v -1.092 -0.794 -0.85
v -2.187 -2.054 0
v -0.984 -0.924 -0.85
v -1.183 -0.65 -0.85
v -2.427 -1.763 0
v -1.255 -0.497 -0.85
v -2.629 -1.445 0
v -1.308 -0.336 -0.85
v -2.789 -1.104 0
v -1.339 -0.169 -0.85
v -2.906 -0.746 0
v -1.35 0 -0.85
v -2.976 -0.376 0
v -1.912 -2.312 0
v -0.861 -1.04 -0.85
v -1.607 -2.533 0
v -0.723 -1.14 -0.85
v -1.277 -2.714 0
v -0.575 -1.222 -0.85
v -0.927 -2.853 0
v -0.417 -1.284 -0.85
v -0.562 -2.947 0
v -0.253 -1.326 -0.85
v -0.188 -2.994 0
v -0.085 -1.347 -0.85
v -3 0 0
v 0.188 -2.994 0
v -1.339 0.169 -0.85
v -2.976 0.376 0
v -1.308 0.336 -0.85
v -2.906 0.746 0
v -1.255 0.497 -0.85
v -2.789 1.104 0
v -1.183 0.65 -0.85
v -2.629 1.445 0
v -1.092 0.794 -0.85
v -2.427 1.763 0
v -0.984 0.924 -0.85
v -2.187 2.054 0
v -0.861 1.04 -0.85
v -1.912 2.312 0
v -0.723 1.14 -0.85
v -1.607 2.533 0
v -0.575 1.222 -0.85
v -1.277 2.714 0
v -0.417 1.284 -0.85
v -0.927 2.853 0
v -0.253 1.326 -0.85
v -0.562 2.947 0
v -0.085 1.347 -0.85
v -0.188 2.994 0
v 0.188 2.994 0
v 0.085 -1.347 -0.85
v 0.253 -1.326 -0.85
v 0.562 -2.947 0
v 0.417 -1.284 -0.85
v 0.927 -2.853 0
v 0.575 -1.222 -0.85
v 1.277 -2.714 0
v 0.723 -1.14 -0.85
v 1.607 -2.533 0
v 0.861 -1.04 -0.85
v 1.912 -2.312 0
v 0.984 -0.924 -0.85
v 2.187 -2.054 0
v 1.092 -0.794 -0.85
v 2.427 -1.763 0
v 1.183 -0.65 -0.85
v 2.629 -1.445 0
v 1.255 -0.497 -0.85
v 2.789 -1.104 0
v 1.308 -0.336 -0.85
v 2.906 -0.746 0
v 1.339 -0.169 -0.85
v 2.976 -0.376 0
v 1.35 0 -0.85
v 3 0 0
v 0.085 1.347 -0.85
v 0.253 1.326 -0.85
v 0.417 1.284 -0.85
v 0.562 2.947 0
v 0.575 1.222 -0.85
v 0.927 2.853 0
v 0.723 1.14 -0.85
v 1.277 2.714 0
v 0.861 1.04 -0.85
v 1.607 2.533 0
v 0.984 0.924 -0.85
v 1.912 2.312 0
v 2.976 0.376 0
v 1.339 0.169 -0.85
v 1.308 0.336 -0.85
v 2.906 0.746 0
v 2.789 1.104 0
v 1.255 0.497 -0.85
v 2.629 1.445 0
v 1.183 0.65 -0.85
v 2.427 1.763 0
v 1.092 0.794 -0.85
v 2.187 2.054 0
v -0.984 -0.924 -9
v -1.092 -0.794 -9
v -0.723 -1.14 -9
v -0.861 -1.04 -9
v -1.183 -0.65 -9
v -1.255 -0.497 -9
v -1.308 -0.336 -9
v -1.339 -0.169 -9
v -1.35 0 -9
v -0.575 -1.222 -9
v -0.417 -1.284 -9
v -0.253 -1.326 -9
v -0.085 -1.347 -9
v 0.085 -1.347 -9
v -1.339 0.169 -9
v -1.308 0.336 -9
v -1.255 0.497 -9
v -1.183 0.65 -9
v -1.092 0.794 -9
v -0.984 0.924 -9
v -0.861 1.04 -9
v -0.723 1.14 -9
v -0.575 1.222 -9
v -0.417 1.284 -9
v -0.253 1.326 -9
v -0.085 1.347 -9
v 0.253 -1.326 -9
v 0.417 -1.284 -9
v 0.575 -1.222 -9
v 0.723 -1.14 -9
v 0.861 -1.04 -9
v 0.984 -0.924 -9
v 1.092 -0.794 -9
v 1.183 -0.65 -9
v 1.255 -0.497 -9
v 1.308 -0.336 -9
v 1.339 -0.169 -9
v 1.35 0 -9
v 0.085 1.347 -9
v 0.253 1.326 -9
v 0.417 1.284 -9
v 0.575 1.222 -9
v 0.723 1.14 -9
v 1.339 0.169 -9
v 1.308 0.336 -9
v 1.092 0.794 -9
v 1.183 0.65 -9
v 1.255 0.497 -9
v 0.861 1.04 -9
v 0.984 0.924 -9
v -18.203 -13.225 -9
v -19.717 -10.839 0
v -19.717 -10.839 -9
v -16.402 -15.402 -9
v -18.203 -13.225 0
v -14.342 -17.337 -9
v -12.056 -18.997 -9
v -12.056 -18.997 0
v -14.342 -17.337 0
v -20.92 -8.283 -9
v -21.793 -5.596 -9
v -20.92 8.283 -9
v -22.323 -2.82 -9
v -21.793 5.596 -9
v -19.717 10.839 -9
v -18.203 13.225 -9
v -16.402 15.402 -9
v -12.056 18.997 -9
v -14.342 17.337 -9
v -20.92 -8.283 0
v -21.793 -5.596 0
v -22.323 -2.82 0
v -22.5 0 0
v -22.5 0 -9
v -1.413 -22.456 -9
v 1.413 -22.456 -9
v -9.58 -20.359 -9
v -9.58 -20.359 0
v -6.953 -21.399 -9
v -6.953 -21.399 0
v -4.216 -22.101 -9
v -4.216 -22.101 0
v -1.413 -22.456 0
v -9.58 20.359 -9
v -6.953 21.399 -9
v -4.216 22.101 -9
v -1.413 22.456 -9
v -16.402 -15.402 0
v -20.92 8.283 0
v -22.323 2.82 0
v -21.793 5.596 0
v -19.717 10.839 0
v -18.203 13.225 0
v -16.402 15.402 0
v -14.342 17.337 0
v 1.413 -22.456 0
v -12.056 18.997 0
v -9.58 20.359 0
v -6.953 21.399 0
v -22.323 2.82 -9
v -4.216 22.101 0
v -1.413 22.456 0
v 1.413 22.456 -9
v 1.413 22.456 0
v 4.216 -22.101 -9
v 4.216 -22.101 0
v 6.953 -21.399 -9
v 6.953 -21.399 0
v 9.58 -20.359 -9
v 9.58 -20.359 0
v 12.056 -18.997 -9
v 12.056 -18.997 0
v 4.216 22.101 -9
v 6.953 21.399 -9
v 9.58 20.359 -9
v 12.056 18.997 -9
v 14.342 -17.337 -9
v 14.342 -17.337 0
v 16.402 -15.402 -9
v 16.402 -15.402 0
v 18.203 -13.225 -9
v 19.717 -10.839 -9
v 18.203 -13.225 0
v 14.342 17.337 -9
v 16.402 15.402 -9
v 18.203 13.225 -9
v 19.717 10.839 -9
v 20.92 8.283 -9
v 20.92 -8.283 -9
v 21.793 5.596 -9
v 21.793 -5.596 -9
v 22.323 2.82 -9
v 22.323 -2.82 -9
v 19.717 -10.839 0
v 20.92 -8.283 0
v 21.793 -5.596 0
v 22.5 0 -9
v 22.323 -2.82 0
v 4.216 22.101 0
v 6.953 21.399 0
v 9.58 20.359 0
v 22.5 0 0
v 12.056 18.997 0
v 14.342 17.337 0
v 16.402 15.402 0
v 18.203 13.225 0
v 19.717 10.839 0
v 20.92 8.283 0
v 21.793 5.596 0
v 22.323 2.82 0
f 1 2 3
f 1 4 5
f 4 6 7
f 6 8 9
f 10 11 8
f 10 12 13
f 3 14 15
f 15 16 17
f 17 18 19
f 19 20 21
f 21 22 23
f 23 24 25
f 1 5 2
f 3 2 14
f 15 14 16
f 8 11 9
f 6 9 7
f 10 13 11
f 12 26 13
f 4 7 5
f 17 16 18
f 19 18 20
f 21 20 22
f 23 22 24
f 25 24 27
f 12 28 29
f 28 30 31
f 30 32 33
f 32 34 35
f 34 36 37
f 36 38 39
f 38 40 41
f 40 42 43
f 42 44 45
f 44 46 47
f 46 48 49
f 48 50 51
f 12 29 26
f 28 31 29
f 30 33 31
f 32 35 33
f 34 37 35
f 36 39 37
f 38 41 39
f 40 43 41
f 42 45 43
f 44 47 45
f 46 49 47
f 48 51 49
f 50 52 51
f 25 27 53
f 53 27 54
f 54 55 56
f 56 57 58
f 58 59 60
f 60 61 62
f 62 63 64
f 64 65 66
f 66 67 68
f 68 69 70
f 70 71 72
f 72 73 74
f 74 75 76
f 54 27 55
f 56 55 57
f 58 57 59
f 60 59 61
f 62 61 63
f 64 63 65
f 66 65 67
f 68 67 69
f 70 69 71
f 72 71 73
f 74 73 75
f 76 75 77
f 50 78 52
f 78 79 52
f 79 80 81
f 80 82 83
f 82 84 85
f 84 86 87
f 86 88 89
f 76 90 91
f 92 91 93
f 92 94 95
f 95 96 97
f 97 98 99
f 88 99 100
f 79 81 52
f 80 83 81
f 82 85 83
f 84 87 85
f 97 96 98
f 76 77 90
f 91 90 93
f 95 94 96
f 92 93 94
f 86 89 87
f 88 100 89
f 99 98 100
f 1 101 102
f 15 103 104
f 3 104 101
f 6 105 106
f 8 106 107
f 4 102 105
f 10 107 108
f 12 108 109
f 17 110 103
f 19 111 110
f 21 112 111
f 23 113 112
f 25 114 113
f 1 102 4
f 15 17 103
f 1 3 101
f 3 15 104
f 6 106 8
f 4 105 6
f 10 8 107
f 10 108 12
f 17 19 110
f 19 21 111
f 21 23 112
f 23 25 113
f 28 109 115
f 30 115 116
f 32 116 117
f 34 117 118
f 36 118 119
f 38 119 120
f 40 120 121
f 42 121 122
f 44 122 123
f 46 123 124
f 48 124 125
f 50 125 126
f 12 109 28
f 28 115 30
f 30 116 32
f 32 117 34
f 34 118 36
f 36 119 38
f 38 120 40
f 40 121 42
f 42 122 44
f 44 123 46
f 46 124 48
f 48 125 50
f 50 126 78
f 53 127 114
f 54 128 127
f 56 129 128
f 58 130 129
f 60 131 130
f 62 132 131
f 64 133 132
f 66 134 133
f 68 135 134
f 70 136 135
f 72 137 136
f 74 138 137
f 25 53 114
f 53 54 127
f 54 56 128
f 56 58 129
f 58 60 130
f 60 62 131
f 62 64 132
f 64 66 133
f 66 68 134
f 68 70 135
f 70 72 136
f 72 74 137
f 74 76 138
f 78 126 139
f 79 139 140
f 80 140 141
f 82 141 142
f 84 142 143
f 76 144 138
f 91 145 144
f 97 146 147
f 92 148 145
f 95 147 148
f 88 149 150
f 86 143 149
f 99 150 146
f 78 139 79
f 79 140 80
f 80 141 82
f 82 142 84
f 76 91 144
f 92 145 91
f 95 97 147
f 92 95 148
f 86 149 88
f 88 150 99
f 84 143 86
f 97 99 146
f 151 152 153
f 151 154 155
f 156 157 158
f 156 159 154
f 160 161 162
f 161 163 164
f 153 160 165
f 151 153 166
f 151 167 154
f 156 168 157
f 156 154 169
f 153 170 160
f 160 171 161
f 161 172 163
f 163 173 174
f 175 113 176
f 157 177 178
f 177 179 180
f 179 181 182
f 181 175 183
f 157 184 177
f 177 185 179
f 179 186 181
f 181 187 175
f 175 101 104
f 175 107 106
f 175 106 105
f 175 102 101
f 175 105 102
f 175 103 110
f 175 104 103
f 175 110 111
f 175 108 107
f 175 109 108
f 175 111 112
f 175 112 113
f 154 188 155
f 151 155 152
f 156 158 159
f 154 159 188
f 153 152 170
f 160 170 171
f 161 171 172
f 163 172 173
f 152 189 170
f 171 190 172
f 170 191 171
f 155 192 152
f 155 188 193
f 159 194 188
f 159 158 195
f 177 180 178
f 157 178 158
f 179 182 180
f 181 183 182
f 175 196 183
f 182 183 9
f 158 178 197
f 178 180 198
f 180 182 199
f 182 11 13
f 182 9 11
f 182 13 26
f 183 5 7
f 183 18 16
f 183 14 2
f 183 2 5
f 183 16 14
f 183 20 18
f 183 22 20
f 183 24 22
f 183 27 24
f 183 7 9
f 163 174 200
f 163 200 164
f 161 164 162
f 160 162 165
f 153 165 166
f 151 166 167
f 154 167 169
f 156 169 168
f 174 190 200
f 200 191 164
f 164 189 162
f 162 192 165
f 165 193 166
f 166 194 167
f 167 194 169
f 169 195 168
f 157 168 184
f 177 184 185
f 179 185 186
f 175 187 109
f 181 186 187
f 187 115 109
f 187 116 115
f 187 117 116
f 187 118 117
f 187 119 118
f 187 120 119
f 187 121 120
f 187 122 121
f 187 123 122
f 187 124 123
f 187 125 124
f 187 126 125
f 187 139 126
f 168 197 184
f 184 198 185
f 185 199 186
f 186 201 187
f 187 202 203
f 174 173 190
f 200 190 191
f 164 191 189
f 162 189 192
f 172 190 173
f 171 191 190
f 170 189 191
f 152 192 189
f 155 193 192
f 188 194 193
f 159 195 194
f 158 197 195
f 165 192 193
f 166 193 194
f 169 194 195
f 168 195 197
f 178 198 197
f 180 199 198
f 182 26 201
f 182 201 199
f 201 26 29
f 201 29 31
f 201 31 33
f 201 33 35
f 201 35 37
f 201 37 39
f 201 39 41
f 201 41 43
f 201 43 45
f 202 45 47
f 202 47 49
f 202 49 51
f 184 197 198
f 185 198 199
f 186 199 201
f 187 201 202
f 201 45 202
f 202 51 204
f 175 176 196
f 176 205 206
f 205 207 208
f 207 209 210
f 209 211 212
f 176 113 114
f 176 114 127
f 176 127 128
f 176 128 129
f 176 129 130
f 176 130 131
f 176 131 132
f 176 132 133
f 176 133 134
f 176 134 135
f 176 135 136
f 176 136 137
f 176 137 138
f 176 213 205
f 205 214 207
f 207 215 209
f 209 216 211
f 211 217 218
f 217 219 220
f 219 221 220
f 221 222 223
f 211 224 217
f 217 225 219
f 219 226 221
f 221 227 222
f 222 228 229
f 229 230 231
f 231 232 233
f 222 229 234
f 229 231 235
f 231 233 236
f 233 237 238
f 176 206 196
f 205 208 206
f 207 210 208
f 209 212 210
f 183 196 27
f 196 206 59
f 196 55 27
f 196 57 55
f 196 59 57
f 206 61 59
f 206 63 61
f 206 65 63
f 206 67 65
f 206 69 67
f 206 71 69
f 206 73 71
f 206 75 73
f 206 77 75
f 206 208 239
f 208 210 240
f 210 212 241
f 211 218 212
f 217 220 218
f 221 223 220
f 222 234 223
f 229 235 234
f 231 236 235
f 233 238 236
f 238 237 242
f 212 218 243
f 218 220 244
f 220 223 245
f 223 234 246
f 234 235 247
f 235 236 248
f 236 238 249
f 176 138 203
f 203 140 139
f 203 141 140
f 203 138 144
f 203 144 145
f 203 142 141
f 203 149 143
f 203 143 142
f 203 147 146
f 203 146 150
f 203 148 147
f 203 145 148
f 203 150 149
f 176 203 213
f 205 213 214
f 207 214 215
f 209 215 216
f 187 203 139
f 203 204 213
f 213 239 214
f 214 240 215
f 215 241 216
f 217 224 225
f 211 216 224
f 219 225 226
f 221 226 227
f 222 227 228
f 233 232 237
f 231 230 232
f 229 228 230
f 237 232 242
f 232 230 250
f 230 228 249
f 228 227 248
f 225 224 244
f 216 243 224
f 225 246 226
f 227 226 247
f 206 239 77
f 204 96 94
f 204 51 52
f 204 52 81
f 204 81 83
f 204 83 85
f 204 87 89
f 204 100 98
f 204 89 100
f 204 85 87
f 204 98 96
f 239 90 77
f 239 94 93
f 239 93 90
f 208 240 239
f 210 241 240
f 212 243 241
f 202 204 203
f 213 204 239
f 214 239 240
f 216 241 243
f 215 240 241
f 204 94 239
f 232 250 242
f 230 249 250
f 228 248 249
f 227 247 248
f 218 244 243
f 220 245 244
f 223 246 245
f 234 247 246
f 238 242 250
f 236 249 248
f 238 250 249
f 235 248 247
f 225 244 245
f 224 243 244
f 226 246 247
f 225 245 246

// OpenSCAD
$fn = 50;


difference() {
	union() {
		translate(v = [0, 0, -9.0000000000]) {
			cylinder(h = 9, r = 22.5000000000);
		}
	}
	union() {
		translate(v = [0, 0, 0]) {
			rotate(a = [0, 0, 0]) {
				difference() {
					union() {
						translate(v = [0, 0, -12.0000000000]) {
							cylinder(h = 12, r = 1.0000000000);
						}
						translate(v = [0, 0, -0.8500000000]) {
							cylinder(h = 0.8500000000, r1 = 1.3500000000, r2 = 3.0000000000);
						}
						translate(v = [0, 0, -12.0000000000]) {
							cylinder(h = 12, r = 1.3500000000);
						}
						translate(v = [0, 0, -12.0000000000]) {
							cylinder(h = 12, r = 1.0000000000);
						}
					}
					union();
				}
			}
		}
	}
}
